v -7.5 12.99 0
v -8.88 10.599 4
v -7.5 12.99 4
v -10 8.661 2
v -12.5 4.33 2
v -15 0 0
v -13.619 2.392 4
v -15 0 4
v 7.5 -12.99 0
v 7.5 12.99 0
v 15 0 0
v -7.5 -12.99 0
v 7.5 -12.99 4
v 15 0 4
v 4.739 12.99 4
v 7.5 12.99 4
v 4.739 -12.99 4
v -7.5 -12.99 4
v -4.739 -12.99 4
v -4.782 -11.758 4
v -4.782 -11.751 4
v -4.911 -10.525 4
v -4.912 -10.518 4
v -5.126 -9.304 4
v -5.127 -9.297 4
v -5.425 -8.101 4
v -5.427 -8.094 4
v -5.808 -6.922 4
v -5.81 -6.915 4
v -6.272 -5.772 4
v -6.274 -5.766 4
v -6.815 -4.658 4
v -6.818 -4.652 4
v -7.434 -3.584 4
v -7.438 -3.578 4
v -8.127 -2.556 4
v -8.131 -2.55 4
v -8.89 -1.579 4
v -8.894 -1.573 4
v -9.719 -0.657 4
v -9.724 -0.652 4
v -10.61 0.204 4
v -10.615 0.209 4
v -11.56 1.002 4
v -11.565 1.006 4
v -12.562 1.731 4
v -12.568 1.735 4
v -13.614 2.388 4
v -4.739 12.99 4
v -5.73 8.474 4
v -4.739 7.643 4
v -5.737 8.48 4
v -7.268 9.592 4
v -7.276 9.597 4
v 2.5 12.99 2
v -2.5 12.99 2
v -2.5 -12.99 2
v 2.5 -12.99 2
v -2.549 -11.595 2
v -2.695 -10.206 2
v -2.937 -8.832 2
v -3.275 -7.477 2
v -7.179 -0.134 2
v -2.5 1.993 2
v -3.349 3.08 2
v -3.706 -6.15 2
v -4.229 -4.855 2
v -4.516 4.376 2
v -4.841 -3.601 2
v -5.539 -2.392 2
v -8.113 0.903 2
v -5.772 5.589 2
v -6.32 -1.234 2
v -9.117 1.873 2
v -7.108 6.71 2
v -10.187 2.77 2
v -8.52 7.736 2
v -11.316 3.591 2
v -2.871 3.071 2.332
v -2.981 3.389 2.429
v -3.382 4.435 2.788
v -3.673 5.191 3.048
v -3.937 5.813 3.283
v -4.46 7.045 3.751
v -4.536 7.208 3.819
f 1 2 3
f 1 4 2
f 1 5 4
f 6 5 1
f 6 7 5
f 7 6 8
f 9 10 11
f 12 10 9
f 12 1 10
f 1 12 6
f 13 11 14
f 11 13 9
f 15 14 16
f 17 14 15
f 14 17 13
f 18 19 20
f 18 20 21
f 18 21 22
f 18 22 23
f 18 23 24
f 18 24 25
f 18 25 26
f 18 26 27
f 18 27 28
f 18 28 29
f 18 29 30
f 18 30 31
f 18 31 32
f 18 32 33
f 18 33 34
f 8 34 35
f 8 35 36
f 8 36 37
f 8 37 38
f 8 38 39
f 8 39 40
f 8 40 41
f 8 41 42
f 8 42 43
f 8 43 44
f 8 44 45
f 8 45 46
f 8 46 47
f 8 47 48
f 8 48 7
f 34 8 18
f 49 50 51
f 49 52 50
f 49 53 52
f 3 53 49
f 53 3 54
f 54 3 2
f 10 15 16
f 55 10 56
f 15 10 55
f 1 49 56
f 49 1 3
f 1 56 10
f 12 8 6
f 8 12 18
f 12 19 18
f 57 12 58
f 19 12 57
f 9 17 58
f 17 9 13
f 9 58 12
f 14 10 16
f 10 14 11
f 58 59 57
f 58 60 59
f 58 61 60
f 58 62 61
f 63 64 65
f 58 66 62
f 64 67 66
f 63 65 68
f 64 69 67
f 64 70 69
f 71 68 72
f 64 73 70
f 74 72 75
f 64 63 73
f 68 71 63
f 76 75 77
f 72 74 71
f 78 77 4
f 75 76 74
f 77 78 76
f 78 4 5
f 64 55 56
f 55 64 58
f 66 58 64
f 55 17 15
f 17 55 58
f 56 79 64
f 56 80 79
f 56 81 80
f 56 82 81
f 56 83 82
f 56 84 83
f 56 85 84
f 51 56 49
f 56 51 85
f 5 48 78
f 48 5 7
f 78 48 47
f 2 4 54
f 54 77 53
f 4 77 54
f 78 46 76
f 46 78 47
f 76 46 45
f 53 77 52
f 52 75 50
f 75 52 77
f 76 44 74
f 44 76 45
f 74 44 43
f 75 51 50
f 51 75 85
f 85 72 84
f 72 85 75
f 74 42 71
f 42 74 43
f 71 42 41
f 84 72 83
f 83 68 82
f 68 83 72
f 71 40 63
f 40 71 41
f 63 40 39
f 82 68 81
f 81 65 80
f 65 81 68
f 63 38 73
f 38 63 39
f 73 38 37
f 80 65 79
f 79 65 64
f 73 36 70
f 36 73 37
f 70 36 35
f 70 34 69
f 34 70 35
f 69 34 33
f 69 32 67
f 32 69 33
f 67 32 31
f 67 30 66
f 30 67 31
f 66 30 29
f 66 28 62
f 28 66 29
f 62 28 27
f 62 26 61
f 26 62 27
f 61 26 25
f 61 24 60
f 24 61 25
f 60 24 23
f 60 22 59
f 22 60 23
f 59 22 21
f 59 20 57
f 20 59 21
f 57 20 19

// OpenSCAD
difference()
{
    color("Peru", 1.0)
    {
        // hexagon base
        linear_extrude(height = 4, center = false, convexity = 10, twist = 0)
        circle(r=15, $fn=6);
    }
    
    color("Blue", 1.0)
    {
        // canal shape
        rotate([90,0,0])
        linear_extrude(height=30, center=true, convexity = 10, twist = 0)
        polygon(points=[[-4.75,4.01],[4.75,4.01],[2.5,2], [-2.5,2]]);
    }
    
    color("Blue", 1.0)
    {
        // canal shape
        translate([-22.5,-12.99,0])
        rotate_extrude(angle=360, convexity=10, $fn=90)
        translate([22.5,0,0])
        polygon(points=[[-4.75,4.01],[4.75,4.01],[2.5,2], [-2.5,2]]);
    }
    
}
